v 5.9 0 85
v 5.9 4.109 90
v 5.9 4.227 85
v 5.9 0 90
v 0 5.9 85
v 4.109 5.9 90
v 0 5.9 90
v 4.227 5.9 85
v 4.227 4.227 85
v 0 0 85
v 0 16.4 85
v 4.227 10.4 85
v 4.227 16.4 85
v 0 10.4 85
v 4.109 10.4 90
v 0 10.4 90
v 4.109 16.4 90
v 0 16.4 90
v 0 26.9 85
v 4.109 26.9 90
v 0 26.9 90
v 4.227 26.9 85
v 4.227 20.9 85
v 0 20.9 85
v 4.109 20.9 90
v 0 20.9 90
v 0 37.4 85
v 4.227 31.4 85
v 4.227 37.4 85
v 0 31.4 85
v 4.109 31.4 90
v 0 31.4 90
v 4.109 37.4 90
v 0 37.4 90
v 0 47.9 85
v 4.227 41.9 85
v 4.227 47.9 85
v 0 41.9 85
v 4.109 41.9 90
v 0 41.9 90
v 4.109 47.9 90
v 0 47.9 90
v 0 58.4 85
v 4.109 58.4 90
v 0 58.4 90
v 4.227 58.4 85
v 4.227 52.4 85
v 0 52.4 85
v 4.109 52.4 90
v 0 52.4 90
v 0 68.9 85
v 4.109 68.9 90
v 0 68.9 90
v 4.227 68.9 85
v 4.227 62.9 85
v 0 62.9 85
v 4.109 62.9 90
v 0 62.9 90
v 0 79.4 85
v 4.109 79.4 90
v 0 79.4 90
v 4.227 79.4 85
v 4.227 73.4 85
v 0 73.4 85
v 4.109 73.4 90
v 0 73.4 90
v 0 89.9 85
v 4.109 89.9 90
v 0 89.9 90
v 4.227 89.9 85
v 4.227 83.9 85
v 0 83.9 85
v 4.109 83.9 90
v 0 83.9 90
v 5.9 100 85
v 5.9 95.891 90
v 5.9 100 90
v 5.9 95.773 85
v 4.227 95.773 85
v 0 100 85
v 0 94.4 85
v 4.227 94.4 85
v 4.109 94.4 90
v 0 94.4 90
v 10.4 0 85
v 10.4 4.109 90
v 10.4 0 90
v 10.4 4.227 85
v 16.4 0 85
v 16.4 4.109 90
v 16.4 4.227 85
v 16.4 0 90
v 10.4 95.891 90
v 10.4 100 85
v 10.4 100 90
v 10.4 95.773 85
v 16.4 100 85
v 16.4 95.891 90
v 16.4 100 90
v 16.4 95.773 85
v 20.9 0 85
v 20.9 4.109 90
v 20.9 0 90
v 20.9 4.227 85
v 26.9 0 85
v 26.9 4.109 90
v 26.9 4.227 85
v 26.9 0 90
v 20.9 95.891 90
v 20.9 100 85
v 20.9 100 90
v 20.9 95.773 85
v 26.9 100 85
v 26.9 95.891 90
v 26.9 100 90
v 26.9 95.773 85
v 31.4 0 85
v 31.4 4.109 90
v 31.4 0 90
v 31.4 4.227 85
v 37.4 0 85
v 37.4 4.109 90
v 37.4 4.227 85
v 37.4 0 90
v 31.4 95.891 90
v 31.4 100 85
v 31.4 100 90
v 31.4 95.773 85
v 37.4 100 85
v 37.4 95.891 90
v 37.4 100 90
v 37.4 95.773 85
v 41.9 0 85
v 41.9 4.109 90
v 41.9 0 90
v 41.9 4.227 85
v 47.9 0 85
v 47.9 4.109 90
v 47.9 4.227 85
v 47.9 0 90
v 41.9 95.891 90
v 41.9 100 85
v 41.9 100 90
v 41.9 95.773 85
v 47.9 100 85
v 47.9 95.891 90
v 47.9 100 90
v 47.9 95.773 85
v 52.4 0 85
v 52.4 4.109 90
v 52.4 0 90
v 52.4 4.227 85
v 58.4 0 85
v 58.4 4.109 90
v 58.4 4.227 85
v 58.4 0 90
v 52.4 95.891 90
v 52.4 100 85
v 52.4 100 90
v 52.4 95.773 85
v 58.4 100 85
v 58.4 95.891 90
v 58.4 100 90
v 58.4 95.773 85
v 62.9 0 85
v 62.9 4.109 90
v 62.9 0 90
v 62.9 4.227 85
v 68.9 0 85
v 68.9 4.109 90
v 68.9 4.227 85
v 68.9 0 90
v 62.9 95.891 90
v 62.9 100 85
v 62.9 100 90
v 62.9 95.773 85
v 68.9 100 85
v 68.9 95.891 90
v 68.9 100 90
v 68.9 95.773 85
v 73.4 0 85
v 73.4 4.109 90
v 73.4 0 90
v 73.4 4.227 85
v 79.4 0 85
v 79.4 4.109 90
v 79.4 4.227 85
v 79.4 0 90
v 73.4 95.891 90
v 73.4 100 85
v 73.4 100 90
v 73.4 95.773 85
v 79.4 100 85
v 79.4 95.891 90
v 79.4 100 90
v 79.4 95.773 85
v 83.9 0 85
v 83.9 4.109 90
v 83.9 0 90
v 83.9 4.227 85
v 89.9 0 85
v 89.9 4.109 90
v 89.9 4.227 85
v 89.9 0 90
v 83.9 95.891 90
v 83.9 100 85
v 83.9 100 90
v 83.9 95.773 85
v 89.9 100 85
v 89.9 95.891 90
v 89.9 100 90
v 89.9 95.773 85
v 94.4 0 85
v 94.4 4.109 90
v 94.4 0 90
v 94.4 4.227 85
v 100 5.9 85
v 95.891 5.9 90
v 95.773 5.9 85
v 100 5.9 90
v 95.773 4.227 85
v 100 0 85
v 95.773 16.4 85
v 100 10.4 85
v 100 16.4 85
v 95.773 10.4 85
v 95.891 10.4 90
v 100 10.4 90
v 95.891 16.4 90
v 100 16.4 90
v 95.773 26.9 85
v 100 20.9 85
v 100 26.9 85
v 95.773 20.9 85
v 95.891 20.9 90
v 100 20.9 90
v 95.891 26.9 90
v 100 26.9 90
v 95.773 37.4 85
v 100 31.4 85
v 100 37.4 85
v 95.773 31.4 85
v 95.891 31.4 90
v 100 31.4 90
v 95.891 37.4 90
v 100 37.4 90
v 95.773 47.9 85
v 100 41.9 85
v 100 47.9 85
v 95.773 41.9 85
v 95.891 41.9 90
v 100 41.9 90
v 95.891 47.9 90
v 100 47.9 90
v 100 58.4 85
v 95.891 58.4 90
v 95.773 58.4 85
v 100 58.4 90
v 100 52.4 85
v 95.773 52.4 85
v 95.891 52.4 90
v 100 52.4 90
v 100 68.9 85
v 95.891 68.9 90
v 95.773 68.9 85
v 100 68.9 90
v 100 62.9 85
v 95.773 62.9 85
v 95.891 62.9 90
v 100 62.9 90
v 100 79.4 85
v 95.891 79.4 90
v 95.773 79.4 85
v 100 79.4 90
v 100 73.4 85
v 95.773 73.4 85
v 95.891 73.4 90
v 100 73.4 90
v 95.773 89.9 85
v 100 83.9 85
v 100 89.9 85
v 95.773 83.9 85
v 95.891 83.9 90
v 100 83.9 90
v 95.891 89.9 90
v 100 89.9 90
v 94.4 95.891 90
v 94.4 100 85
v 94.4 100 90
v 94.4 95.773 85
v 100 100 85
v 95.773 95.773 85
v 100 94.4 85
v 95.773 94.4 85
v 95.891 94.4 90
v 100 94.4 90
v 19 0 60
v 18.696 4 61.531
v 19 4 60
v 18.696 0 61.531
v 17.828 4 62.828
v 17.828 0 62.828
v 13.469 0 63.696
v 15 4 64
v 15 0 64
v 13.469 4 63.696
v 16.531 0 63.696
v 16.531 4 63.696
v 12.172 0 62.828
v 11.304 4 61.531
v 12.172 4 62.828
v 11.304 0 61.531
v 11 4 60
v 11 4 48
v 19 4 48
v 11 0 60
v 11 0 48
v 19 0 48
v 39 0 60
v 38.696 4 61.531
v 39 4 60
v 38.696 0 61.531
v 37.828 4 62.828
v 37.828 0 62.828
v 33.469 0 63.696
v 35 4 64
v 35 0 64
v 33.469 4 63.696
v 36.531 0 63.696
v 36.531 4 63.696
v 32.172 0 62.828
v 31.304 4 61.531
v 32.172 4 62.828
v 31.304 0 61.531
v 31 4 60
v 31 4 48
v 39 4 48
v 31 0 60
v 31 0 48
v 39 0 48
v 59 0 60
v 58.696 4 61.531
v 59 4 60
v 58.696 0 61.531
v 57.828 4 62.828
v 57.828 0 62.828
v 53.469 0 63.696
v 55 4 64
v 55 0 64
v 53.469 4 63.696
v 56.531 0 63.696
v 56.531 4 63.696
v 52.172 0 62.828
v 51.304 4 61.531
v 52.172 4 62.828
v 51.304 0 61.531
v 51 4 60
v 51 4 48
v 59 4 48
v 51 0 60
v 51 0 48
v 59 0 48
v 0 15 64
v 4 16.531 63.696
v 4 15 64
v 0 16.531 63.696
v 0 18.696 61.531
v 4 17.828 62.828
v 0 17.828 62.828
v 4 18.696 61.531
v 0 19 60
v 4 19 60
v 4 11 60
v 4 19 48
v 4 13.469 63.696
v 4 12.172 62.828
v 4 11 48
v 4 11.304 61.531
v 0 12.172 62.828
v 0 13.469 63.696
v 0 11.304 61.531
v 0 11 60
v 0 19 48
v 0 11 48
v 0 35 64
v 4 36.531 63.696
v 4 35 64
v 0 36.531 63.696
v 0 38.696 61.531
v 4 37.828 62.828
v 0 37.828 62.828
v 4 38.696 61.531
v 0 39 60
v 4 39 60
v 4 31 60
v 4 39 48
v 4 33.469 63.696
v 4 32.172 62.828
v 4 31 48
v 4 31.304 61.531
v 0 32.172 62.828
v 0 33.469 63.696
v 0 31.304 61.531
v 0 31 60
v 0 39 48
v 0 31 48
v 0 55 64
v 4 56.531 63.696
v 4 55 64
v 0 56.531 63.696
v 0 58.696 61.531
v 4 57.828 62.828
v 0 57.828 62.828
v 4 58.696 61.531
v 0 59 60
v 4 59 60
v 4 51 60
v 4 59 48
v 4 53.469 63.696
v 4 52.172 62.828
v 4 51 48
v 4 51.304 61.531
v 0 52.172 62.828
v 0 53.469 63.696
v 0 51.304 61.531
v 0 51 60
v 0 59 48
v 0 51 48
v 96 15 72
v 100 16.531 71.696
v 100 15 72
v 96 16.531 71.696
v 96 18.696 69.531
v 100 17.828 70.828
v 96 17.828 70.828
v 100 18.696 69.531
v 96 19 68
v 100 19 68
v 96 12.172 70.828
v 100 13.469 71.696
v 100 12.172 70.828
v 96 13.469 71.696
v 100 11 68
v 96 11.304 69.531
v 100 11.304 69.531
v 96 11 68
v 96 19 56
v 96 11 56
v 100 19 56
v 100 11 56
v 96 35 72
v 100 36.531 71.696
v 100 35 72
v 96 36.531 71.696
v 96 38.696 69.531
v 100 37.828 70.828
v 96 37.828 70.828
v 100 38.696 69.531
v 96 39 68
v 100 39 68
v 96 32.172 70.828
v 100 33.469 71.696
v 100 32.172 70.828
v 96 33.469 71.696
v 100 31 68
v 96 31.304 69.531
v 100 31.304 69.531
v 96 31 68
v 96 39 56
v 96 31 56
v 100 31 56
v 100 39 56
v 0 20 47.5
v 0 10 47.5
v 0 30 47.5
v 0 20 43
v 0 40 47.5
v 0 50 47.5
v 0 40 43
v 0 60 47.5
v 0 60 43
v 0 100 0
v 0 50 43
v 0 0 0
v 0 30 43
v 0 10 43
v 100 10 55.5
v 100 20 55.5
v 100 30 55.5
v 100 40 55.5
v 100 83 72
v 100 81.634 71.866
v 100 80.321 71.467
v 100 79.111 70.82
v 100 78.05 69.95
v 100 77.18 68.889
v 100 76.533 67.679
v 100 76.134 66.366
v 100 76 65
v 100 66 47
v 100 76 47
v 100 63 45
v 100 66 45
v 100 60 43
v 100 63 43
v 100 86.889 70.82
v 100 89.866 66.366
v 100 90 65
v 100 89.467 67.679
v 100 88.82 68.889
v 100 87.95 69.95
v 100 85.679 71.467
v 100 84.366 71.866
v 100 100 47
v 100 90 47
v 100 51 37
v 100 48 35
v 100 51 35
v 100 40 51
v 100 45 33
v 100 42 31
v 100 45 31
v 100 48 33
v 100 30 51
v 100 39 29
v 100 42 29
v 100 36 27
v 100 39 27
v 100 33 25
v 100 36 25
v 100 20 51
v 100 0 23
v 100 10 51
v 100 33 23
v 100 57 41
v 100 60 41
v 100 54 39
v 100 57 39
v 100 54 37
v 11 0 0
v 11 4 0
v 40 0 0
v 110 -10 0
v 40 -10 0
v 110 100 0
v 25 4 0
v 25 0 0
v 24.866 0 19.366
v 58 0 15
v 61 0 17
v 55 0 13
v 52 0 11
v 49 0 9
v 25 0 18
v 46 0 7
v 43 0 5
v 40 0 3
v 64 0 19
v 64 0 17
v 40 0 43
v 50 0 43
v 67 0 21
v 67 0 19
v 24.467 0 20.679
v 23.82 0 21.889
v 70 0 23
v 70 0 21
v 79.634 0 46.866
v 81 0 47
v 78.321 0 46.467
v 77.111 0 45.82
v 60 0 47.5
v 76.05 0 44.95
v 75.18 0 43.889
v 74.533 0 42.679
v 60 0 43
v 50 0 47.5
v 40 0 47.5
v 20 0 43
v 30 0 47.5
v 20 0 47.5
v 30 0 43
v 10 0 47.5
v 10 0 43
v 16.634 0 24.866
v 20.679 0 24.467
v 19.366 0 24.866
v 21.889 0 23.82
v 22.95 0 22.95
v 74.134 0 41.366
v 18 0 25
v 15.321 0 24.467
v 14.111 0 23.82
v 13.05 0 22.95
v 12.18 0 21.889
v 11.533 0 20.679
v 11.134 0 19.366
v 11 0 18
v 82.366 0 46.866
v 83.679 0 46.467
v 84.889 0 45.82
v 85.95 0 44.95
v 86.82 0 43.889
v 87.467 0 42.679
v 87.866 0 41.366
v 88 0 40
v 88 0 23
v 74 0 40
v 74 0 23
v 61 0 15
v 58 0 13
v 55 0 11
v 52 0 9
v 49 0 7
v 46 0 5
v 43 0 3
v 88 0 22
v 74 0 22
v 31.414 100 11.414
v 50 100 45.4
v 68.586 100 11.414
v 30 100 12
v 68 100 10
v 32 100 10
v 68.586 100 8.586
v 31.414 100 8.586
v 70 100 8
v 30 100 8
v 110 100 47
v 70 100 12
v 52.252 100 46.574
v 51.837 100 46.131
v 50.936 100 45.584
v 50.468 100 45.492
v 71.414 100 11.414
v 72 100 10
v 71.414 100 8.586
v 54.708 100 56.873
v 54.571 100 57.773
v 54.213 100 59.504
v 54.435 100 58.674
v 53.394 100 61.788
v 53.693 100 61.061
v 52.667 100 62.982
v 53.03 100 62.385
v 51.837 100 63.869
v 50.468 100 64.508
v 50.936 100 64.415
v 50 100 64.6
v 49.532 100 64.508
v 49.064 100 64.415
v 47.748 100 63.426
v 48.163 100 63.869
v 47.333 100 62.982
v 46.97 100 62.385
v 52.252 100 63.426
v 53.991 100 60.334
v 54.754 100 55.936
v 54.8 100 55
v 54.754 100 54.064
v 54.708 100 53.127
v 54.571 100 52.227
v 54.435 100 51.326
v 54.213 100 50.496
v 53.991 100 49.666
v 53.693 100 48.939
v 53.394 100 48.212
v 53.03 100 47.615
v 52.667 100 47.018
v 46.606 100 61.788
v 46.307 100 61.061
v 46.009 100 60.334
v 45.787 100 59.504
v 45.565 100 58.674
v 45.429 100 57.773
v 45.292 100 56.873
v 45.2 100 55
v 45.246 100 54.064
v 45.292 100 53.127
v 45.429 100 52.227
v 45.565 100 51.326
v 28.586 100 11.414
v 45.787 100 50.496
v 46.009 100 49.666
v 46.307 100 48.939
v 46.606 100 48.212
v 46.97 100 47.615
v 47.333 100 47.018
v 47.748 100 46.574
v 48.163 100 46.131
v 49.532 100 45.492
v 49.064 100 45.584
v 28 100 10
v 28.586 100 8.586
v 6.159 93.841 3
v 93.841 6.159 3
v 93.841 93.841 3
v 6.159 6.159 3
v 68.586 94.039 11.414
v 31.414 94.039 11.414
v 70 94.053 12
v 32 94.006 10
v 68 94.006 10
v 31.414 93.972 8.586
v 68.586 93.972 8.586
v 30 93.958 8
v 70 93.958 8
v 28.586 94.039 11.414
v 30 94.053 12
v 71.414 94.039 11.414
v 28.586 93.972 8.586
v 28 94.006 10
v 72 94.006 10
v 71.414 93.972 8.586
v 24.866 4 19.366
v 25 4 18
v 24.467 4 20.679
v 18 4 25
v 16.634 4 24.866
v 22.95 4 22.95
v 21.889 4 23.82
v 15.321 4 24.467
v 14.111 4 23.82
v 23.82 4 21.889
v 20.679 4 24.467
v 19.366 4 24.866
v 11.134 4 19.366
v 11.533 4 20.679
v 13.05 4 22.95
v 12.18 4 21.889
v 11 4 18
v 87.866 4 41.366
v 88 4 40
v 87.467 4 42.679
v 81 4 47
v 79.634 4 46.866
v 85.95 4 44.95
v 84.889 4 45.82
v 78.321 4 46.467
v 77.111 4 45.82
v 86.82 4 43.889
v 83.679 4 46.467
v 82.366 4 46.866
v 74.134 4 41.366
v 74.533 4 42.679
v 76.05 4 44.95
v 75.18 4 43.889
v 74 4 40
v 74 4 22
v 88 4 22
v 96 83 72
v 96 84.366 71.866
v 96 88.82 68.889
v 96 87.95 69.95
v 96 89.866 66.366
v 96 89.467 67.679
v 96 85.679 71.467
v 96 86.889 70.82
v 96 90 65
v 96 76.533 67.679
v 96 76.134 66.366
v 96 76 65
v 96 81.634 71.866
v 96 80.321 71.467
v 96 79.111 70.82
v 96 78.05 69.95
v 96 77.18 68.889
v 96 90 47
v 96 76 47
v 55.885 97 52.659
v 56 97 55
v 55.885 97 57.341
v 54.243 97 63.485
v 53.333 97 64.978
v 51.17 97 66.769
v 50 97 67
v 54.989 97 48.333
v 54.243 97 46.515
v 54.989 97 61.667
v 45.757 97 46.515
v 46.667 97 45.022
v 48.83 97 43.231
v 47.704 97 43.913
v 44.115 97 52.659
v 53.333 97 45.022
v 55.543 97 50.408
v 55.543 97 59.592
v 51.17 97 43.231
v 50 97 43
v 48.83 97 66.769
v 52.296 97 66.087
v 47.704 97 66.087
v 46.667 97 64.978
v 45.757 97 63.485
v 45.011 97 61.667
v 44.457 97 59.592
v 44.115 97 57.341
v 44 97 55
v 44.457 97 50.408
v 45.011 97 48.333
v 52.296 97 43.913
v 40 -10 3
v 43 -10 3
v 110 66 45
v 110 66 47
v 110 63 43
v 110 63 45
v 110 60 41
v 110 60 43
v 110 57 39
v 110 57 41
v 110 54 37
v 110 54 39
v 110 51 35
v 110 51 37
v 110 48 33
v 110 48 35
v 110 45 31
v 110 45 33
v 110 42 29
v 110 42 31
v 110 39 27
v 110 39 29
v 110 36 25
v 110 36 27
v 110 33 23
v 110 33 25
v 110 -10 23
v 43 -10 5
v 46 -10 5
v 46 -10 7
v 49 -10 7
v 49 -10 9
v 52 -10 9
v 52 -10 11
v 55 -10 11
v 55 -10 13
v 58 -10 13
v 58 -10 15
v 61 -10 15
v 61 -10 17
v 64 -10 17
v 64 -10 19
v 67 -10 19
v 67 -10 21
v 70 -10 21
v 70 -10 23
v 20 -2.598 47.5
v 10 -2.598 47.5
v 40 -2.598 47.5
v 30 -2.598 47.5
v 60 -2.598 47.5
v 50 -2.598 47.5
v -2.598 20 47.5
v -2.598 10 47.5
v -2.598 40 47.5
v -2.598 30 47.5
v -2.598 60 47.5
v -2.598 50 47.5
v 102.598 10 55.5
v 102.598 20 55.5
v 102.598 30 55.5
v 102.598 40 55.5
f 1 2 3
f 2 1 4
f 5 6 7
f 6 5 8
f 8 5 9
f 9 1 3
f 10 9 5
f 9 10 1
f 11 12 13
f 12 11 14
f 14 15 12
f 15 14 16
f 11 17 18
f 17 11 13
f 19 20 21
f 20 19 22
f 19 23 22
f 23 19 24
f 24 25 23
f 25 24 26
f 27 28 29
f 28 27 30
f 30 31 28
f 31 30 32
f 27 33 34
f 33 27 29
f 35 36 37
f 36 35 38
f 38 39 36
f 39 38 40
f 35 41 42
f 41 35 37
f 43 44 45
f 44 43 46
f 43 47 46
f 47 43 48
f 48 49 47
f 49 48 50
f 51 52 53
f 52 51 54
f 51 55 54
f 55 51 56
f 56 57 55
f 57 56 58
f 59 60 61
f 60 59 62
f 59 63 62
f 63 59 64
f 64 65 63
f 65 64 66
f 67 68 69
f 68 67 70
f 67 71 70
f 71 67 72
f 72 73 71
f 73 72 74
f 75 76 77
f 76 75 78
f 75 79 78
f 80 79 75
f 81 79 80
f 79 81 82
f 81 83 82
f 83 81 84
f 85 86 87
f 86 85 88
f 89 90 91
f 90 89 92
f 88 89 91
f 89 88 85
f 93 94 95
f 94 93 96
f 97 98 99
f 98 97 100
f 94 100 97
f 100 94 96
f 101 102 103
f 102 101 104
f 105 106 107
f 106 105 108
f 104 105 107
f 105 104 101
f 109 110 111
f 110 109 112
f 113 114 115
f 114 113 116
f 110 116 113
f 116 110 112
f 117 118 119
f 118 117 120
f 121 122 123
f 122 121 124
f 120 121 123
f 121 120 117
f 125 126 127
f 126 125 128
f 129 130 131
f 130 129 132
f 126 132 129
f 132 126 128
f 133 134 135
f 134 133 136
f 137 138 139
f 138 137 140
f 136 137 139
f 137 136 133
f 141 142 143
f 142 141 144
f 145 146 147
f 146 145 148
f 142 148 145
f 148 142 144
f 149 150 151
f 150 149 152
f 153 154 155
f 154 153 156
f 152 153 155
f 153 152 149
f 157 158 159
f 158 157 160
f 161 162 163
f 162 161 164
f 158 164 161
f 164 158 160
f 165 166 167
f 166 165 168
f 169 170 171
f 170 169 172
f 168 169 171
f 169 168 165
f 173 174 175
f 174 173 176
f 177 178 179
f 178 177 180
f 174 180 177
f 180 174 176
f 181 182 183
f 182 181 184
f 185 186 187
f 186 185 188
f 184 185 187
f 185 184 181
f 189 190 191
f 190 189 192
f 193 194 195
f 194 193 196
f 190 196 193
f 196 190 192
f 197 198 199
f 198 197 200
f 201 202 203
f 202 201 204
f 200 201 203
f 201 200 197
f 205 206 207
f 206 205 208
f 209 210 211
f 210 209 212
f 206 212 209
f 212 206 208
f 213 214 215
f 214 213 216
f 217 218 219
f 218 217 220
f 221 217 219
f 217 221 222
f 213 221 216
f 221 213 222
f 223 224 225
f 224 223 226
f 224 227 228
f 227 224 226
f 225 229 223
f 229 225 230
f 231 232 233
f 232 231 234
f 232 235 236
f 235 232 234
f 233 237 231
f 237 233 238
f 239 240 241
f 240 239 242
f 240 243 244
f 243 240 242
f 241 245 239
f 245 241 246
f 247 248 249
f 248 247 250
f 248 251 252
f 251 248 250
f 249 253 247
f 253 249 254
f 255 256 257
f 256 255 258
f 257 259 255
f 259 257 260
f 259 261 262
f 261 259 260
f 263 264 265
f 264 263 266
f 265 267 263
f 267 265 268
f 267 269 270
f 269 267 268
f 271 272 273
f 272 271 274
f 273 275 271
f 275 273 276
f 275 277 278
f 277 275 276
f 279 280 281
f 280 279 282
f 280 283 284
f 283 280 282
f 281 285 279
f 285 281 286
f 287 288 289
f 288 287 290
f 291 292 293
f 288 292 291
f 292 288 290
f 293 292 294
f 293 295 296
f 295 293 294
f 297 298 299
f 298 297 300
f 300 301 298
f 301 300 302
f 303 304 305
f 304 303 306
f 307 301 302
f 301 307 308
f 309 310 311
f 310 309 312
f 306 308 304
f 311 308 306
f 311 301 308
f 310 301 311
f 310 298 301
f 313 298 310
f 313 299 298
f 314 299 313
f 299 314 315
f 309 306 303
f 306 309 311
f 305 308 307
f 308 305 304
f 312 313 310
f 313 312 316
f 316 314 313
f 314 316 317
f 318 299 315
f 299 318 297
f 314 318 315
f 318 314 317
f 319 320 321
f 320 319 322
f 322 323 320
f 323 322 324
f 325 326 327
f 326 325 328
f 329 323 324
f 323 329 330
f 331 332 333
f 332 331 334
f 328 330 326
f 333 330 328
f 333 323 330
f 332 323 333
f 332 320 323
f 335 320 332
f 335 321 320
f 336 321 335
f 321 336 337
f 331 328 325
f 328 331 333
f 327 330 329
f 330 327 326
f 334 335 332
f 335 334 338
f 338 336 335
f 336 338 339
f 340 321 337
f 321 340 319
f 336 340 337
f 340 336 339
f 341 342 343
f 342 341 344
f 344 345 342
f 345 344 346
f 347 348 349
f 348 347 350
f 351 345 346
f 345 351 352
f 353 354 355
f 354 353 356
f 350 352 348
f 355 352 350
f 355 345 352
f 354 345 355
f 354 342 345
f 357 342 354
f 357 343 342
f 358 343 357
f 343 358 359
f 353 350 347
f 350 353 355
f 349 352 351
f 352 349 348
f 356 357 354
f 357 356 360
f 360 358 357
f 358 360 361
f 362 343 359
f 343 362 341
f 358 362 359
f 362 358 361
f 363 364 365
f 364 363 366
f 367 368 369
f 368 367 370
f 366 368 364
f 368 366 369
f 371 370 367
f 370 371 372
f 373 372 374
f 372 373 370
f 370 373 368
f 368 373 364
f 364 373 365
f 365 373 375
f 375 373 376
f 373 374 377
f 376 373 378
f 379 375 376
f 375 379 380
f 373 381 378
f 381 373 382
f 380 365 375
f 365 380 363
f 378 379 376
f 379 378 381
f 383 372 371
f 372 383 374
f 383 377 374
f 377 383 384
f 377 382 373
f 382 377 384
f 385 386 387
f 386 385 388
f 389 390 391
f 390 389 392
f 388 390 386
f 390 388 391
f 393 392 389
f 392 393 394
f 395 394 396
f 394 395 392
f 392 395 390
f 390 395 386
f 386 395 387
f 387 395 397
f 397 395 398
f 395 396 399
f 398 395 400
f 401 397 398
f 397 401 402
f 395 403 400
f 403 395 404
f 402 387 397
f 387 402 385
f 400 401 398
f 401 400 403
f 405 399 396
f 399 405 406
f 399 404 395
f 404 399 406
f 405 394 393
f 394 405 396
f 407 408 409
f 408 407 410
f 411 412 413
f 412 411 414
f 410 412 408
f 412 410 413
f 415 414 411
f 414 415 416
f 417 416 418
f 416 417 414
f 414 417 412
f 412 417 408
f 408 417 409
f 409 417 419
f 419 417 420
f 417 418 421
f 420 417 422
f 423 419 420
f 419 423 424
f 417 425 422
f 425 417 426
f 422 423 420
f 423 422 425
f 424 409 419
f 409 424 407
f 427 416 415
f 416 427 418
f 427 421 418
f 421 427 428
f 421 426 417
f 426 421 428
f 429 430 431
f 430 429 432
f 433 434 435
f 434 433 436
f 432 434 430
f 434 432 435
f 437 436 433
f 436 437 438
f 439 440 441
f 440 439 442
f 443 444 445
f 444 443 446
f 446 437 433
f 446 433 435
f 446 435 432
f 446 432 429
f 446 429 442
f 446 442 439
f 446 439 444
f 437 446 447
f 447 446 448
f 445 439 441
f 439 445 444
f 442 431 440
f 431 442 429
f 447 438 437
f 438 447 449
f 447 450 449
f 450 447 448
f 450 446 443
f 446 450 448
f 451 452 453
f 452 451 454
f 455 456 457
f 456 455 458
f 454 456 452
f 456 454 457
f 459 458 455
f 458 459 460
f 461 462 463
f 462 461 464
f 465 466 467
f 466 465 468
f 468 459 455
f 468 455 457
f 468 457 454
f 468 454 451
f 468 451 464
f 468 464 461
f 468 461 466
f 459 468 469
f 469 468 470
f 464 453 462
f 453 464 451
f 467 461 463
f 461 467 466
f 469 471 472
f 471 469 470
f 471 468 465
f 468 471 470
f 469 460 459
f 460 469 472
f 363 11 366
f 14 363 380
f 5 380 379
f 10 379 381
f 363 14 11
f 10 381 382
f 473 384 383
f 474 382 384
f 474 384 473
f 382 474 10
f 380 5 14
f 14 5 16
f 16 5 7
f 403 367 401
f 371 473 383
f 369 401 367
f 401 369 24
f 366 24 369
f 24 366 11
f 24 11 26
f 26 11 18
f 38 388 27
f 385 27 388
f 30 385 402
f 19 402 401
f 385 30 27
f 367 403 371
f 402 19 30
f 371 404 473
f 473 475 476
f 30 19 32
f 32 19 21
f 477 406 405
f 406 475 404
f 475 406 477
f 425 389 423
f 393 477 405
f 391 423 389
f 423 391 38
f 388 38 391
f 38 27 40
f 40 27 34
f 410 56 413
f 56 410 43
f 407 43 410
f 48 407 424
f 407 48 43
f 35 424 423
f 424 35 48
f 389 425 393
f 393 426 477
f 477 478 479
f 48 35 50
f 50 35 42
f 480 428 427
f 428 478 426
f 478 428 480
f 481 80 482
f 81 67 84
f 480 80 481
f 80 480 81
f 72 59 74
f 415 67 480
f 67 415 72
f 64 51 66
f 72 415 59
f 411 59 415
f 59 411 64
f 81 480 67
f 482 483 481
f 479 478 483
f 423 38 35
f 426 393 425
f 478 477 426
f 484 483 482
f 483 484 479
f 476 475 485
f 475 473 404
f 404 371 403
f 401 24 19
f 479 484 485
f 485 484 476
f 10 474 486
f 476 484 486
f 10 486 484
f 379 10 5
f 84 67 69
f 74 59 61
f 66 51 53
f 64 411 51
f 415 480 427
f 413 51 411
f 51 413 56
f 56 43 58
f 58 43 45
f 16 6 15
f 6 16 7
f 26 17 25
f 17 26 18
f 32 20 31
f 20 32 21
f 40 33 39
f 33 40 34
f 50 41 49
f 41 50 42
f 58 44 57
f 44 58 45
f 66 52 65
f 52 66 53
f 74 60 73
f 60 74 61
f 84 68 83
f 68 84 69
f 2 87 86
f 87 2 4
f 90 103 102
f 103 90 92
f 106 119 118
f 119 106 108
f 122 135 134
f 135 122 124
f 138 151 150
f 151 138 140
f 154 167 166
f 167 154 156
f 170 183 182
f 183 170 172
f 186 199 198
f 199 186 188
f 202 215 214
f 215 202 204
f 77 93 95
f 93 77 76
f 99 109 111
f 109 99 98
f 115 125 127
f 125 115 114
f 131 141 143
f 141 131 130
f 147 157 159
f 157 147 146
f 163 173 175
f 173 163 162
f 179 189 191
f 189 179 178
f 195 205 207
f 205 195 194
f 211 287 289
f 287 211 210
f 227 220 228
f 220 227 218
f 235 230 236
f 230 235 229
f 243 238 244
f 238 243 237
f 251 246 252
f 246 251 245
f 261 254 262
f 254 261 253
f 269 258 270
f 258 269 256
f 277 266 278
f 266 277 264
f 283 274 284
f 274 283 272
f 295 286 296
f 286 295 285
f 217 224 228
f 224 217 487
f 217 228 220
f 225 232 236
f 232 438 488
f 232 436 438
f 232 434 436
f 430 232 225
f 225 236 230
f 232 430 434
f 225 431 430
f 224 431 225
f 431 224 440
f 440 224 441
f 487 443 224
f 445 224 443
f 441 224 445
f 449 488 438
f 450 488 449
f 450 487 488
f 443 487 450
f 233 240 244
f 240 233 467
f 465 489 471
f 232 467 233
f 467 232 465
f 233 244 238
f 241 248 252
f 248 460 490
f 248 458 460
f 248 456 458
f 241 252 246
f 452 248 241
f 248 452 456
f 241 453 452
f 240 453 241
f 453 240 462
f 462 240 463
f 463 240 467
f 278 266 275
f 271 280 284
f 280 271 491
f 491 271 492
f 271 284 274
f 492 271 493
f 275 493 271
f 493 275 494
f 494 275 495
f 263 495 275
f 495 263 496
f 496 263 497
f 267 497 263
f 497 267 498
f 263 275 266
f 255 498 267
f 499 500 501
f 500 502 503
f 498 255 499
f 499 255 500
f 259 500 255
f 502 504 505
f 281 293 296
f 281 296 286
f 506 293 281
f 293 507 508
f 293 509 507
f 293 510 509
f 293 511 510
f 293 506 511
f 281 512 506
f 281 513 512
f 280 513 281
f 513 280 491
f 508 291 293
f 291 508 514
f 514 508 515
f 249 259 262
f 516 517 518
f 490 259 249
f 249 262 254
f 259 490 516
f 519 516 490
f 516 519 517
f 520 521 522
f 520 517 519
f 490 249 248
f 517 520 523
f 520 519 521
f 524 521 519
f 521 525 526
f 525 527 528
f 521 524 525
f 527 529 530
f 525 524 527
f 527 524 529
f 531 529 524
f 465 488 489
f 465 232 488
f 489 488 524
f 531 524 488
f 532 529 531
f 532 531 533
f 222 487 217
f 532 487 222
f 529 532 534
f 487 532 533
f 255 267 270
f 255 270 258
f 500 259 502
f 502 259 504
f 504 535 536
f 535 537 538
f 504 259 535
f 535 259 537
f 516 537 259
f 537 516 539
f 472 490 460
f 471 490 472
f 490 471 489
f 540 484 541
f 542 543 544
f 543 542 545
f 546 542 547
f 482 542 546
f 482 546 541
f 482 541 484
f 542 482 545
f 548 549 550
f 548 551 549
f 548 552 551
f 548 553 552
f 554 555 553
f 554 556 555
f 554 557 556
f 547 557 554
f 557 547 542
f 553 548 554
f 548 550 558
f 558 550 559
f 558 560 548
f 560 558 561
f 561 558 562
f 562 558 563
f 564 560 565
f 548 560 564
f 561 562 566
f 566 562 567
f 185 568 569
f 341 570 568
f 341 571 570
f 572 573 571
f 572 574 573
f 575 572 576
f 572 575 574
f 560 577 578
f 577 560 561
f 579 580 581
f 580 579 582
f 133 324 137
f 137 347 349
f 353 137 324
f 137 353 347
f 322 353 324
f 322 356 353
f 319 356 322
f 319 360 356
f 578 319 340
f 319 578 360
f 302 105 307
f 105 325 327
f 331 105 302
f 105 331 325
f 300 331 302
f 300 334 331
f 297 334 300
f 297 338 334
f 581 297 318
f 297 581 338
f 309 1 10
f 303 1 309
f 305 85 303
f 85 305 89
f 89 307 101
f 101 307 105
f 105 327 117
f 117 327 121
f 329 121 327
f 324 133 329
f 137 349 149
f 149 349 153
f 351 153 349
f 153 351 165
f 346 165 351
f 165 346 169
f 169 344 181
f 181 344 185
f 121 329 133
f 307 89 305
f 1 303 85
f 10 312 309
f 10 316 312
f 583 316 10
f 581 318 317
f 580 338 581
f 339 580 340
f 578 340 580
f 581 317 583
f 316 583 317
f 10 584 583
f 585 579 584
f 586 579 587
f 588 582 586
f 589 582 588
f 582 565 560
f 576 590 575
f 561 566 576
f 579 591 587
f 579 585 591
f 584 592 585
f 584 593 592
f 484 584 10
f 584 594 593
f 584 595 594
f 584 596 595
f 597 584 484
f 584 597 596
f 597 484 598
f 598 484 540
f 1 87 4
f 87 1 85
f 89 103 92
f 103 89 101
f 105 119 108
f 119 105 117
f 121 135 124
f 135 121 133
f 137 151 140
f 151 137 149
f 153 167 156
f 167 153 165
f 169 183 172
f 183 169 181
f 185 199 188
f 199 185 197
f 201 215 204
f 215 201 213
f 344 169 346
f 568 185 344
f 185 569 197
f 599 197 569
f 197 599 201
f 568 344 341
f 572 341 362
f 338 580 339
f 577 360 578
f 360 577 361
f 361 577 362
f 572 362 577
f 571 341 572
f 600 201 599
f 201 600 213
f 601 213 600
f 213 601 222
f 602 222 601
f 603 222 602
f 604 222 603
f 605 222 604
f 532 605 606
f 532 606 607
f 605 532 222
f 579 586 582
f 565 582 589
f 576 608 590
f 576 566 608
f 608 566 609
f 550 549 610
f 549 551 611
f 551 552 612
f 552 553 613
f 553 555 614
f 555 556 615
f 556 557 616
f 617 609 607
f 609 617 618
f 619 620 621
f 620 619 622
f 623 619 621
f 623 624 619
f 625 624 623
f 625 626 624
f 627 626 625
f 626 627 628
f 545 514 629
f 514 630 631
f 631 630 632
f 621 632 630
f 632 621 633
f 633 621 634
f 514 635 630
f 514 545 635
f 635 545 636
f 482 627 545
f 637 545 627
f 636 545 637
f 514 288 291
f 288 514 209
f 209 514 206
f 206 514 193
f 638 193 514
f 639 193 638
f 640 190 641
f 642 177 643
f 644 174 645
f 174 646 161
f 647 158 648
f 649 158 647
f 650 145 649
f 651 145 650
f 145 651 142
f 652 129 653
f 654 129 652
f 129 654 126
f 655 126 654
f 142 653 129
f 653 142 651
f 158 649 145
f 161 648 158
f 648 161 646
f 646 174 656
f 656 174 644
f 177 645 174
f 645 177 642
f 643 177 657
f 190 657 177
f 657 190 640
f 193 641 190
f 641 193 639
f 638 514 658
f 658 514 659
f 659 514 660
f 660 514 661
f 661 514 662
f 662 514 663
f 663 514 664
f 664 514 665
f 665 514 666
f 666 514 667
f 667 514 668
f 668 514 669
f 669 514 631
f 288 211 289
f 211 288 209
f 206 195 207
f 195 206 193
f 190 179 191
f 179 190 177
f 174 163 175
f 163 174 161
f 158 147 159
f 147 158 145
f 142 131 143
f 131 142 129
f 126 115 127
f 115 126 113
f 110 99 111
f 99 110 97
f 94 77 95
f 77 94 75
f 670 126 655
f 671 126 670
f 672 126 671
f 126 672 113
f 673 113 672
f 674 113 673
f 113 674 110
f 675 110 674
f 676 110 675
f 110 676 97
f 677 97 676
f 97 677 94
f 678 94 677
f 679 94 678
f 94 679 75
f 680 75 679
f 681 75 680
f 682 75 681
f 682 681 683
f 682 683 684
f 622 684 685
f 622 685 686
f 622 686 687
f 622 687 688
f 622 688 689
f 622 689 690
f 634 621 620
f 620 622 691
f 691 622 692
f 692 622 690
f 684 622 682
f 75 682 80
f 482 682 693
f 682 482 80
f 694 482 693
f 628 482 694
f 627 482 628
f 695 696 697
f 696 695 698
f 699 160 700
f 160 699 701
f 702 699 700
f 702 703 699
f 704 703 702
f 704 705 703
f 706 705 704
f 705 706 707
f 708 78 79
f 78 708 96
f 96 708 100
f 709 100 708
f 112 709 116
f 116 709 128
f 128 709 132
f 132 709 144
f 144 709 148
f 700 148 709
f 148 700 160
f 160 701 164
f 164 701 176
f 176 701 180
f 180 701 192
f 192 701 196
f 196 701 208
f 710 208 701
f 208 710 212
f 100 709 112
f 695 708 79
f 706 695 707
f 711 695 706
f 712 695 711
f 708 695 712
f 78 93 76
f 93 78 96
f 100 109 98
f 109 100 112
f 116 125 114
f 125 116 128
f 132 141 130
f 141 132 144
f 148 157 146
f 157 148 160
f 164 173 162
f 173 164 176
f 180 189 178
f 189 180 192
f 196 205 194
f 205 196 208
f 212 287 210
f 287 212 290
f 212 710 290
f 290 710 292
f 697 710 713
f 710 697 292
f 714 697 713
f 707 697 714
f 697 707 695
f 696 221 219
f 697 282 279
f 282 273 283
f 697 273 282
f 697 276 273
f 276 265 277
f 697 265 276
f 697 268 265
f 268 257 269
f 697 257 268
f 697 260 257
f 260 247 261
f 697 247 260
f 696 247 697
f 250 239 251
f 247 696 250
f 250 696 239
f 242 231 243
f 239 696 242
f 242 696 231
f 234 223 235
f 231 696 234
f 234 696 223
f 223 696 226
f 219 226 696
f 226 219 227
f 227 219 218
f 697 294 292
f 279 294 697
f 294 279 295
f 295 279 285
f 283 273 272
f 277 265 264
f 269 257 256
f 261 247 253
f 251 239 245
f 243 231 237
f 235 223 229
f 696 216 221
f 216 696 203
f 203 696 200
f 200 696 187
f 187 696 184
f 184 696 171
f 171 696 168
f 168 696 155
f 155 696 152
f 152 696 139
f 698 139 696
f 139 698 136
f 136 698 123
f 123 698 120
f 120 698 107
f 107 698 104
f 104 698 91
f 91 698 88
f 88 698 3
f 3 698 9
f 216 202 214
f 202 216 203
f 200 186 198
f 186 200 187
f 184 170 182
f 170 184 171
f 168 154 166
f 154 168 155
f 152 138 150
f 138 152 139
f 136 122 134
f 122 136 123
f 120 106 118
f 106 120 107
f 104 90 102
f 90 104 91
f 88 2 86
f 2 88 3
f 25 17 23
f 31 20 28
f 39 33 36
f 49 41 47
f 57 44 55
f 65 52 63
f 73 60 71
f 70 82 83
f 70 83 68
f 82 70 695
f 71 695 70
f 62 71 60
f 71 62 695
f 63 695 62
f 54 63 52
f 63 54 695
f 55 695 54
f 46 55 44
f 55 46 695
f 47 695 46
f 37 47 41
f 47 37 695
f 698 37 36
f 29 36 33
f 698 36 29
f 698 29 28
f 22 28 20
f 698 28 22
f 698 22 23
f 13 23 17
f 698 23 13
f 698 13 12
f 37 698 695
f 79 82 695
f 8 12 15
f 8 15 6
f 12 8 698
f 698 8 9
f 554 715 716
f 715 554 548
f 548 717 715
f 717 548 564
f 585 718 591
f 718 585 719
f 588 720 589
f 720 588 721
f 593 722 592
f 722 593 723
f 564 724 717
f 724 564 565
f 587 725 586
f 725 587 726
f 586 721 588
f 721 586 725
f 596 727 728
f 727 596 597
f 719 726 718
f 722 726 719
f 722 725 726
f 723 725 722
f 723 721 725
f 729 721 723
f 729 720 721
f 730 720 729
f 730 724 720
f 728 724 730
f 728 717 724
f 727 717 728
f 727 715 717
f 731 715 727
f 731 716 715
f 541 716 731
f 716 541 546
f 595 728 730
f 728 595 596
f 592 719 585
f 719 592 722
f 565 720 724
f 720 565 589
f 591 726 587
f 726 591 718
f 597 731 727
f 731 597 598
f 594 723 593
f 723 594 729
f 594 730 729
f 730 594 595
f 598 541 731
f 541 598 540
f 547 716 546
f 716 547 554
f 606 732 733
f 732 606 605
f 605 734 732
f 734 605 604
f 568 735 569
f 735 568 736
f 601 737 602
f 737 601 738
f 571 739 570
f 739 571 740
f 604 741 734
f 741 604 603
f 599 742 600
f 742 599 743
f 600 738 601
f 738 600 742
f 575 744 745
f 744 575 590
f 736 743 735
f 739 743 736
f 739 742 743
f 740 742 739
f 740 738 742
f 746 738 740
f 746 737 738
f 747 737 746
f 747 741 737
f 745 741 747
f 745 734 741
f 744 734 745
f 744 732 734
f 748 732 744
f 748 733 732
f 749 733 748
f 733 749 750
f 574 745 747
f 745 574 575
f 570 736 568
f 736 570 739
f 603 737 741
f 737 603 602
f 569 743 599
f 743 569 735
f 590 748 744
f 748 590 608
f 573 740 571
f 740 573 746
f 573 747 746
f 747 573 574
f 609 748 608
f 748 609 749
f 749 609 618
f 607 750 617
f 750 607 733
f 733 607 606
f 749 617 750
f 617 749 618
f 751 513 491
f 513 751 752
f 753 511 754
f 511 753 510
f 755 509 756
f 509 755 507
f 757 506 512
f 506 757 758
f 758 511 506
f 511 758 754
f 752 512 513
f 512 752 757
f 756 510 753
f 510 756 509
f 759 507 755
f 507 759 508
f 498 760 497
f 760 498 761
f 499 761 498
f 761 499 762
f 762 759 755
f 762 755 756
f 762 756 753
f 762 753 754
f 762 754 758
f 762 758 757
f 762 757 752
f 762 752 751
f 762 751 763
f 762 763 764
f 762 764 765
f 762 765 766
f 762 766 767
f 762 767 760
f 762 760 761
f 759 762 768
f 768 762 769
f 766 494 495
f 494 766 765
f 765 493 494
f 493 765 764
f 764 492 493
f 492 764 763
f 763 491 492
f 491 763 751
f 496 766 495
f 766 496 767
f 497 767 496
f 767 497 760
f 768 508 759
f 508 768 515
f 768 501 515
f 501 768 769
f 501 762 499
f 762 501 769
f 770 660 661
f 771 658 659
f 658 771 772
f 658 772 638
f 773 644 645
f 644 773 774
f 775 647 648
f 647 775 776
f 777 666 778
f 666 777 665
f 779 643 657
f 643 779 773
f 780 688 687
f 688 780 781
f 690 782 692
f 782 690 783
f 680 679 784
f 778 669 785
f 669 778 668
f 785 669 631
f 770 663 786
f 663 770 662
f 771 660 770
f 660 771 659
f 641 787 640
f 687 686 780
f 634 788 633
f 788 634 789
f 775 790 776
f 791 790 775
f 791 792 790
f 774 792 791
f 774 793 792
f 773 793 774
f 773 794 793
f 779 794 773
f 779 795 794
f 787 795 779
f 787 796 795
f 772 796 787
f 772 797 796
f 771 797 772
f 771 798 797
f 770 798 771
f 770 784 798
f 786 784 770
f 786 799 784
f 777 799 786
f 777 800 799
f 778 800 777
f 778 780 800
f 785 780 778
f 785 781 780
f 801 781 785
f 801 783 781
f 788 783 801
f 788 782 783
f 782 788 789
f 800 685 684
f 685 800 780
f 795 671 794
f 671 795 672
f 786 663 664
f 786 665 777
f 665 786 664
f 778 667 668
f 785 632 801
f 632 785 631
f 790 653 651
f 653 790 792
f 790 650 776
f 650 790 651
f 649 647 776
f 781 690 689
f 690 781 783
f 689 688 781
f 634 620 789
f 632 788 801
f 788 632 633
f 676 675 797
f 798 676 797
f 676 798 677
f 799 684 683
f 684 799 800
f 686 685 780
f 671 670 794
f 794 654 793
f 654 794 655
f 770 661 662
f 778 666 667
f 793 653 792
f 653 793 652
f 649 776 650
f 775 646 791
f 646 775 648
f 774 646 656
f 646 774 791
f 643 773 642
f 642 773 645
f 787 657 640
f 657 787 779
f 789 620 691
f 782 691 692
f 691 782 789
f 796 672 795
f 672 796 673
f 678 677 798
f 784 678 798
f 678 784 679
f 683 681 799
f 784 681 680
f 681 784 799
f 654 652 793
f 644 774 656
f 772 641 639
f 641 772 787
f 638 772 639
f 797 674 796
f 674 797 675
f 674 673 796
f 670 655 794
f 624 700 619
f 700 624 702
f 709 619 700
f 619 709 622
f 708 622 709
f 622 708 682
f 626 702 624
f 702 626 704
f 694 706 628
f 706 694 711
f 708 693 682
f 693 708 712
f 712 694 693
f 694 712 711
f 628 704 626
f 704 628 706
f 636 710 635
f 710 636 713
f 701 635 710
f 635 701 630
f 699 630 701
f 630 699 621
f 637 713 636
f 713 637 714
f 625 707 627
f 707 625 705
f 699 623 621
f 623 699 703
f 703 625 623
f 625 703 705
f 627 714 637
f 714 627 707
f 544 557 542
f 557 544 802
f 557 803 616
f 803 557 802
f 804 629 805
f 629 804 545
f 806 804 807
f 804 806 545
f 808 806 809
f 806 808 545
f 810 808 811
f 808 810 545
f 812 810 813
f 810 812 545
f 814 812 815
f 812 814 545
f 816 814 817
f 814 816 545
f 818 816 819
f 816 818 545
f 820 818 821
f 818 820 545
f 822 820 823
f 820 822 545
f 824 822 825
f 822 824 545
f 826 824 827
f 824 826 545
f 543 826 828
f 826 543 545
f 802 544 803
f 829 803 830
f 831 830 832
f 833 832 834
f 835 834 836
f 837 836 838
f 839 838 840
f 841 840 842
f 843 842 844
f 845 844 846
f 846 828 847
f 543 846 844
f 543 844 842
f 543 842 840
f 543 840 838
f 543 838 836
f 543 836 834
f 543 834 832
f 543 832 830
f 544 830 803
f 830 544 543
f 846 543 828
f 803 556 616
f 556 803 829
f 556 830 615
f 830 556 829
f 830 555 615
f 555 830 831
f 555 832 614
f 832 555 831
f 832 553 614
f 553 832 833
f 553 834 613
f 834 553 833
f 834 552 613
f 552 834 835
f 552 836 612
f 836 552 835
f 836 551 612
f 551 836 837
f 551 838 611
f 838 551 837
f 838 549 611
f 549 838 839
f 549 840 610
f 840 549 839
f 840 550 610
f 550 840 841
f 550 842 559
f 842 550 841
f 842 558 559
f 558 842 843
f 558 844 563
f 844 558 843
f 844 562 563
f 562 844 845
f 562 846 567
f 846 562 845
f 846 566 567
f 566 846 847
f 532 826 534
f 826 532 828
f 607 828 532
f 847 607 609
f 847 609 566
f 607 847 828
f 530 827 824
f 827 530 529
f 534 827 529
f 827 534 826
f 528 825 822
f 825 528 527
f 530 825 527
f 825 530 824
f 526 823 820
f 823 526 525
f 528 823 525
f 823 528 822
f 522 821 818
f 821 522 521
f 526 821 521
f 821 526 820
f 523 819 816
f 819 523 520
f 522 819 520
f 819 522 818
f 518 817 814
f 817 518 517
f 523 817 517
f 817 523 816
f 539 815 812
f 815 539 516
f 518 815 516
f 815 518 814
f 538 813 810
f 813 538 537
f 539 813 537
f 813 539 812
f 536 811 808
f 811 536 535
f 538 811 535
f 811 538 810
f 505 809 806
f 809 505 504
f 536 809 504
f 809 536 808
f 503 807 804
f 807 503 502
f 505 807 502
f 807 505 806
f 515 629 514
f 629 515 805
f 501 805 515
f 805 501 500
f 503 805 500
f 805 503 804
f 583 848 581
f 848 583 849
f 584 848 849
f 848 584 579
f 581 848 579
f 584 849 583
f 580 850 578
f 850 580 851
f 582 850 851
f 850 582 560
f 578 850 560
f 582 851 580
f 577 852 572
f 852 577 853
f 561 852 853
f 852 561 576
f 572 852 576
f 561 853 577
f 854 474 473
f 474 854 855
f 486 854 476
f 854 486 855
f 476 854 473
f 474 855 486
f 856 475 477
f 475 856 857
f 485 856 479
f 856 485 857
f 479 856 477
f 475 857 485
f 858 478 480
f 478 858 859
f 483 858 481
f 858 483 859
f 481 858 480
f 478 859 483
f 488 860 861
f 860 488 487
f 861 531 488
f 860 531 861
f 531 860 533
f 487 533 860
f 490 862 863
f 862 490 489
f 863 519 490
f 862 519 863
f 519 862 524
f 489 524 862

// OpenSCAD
difference(){
	cube([100,100,90]);
	translate([50,50,3])
//		cube([90,90,90]);
		rotate([0,0,45])
			cylinder(90,62,65,$fn=4);

//upper part
	for (i = [0:10.5:100]){
		for (j = [0:10.5:100]){
			translate([-0.1+i,-0.1+j,85])
				cube([6,6,6]);
		} //j
	} //i
	//windows front
	for (i = [0,20,40]) {
		translate([15+i,4,60])
			rotate([90,0,0])
				cylinder(5,4,4, $fn=16);
		translate([11+i,-1,48])
			cube([8,5,12]);
	} //windows front

	//windows left
	for (i = [0,20,40]) {
		translate([-1,(15+i),60])
			rotate([0,90,0])
				cylinder(5,4,4, $fn=16);
		translate([-1,11+i,48])
			cube([5,8,12]);
	} //windows left

	//windows right
	for (i = [0,20,20]) {
		translate([96,15+i,,68])
			rotate([0,90,0])
				cylinder(5,4,4, $fn=16);
		translate([96,11+i,56])
			cube([5,8,12]);
	} //windows right


	//doors front
		translate([18,4,18])
			rotate([90,0,0])
				cylinder(5,7,7, $fn=32);
		translate([11,-1,0])
			cube([14,5,18]);

		translate([81,4,40])
			rotate([90,0,0])
				cylinder(5,7,7, $fn=32);
		translate([74,-1,22])
			cube([14,5,18]);
	//doors front

	//door right
		translate([96,83,65])
			rotate([0,90,0])
				cylinder(5,7,7, $fn=32);
		translate([96,76,47])
			cube([5,14,18]);
	//door right

	//holes in the back
		translate([50,102,55])
			rotate([90,0,0])
				scale([1,2,1])
					cylinder(5,4,6, $fn=32);

	//holes forwater
		translate([30,105,10])
			rotate([90,0,0])
					cylinder(15,2,2, $fn=8);
		translate([70,105,10])
			rotate([90,0,0])
					cylinder(15,2,2, $fn=8);

}


//stairs
//front
	for (i = [0:2:20]){
		translate([40+i*1.5,-10,i])
			cube([70-i*1.5,10,3]);

	}
//right
	for (i = [0:2:25]){
		translate([100, 30+i*1.5,,20+i])
			cube([10,70-i*1.5,3]);

	}
translate([100,0,0])
	cube([10,100,23]);


//windowsill front 
for (i = [0,20,40]) {
	translate([10+i,0,46])
		rotate([0,90,0])
			cylinder(10,3,3,$fn=3);
} //windows front support

//windowsill left support
for (i = [0,20,40]) {
	translate([0,10+i,46])
		rotate([0,90,90])
			cylinder(10,3,3,$fn=3);
} //windows left support

//windowsill right support
for (i = [0,20,20]) {
	translate([100,10+i,54])
		rotate([0,90,90])
			cylinder(10,3,3,$fn=3);
} //windows right support
